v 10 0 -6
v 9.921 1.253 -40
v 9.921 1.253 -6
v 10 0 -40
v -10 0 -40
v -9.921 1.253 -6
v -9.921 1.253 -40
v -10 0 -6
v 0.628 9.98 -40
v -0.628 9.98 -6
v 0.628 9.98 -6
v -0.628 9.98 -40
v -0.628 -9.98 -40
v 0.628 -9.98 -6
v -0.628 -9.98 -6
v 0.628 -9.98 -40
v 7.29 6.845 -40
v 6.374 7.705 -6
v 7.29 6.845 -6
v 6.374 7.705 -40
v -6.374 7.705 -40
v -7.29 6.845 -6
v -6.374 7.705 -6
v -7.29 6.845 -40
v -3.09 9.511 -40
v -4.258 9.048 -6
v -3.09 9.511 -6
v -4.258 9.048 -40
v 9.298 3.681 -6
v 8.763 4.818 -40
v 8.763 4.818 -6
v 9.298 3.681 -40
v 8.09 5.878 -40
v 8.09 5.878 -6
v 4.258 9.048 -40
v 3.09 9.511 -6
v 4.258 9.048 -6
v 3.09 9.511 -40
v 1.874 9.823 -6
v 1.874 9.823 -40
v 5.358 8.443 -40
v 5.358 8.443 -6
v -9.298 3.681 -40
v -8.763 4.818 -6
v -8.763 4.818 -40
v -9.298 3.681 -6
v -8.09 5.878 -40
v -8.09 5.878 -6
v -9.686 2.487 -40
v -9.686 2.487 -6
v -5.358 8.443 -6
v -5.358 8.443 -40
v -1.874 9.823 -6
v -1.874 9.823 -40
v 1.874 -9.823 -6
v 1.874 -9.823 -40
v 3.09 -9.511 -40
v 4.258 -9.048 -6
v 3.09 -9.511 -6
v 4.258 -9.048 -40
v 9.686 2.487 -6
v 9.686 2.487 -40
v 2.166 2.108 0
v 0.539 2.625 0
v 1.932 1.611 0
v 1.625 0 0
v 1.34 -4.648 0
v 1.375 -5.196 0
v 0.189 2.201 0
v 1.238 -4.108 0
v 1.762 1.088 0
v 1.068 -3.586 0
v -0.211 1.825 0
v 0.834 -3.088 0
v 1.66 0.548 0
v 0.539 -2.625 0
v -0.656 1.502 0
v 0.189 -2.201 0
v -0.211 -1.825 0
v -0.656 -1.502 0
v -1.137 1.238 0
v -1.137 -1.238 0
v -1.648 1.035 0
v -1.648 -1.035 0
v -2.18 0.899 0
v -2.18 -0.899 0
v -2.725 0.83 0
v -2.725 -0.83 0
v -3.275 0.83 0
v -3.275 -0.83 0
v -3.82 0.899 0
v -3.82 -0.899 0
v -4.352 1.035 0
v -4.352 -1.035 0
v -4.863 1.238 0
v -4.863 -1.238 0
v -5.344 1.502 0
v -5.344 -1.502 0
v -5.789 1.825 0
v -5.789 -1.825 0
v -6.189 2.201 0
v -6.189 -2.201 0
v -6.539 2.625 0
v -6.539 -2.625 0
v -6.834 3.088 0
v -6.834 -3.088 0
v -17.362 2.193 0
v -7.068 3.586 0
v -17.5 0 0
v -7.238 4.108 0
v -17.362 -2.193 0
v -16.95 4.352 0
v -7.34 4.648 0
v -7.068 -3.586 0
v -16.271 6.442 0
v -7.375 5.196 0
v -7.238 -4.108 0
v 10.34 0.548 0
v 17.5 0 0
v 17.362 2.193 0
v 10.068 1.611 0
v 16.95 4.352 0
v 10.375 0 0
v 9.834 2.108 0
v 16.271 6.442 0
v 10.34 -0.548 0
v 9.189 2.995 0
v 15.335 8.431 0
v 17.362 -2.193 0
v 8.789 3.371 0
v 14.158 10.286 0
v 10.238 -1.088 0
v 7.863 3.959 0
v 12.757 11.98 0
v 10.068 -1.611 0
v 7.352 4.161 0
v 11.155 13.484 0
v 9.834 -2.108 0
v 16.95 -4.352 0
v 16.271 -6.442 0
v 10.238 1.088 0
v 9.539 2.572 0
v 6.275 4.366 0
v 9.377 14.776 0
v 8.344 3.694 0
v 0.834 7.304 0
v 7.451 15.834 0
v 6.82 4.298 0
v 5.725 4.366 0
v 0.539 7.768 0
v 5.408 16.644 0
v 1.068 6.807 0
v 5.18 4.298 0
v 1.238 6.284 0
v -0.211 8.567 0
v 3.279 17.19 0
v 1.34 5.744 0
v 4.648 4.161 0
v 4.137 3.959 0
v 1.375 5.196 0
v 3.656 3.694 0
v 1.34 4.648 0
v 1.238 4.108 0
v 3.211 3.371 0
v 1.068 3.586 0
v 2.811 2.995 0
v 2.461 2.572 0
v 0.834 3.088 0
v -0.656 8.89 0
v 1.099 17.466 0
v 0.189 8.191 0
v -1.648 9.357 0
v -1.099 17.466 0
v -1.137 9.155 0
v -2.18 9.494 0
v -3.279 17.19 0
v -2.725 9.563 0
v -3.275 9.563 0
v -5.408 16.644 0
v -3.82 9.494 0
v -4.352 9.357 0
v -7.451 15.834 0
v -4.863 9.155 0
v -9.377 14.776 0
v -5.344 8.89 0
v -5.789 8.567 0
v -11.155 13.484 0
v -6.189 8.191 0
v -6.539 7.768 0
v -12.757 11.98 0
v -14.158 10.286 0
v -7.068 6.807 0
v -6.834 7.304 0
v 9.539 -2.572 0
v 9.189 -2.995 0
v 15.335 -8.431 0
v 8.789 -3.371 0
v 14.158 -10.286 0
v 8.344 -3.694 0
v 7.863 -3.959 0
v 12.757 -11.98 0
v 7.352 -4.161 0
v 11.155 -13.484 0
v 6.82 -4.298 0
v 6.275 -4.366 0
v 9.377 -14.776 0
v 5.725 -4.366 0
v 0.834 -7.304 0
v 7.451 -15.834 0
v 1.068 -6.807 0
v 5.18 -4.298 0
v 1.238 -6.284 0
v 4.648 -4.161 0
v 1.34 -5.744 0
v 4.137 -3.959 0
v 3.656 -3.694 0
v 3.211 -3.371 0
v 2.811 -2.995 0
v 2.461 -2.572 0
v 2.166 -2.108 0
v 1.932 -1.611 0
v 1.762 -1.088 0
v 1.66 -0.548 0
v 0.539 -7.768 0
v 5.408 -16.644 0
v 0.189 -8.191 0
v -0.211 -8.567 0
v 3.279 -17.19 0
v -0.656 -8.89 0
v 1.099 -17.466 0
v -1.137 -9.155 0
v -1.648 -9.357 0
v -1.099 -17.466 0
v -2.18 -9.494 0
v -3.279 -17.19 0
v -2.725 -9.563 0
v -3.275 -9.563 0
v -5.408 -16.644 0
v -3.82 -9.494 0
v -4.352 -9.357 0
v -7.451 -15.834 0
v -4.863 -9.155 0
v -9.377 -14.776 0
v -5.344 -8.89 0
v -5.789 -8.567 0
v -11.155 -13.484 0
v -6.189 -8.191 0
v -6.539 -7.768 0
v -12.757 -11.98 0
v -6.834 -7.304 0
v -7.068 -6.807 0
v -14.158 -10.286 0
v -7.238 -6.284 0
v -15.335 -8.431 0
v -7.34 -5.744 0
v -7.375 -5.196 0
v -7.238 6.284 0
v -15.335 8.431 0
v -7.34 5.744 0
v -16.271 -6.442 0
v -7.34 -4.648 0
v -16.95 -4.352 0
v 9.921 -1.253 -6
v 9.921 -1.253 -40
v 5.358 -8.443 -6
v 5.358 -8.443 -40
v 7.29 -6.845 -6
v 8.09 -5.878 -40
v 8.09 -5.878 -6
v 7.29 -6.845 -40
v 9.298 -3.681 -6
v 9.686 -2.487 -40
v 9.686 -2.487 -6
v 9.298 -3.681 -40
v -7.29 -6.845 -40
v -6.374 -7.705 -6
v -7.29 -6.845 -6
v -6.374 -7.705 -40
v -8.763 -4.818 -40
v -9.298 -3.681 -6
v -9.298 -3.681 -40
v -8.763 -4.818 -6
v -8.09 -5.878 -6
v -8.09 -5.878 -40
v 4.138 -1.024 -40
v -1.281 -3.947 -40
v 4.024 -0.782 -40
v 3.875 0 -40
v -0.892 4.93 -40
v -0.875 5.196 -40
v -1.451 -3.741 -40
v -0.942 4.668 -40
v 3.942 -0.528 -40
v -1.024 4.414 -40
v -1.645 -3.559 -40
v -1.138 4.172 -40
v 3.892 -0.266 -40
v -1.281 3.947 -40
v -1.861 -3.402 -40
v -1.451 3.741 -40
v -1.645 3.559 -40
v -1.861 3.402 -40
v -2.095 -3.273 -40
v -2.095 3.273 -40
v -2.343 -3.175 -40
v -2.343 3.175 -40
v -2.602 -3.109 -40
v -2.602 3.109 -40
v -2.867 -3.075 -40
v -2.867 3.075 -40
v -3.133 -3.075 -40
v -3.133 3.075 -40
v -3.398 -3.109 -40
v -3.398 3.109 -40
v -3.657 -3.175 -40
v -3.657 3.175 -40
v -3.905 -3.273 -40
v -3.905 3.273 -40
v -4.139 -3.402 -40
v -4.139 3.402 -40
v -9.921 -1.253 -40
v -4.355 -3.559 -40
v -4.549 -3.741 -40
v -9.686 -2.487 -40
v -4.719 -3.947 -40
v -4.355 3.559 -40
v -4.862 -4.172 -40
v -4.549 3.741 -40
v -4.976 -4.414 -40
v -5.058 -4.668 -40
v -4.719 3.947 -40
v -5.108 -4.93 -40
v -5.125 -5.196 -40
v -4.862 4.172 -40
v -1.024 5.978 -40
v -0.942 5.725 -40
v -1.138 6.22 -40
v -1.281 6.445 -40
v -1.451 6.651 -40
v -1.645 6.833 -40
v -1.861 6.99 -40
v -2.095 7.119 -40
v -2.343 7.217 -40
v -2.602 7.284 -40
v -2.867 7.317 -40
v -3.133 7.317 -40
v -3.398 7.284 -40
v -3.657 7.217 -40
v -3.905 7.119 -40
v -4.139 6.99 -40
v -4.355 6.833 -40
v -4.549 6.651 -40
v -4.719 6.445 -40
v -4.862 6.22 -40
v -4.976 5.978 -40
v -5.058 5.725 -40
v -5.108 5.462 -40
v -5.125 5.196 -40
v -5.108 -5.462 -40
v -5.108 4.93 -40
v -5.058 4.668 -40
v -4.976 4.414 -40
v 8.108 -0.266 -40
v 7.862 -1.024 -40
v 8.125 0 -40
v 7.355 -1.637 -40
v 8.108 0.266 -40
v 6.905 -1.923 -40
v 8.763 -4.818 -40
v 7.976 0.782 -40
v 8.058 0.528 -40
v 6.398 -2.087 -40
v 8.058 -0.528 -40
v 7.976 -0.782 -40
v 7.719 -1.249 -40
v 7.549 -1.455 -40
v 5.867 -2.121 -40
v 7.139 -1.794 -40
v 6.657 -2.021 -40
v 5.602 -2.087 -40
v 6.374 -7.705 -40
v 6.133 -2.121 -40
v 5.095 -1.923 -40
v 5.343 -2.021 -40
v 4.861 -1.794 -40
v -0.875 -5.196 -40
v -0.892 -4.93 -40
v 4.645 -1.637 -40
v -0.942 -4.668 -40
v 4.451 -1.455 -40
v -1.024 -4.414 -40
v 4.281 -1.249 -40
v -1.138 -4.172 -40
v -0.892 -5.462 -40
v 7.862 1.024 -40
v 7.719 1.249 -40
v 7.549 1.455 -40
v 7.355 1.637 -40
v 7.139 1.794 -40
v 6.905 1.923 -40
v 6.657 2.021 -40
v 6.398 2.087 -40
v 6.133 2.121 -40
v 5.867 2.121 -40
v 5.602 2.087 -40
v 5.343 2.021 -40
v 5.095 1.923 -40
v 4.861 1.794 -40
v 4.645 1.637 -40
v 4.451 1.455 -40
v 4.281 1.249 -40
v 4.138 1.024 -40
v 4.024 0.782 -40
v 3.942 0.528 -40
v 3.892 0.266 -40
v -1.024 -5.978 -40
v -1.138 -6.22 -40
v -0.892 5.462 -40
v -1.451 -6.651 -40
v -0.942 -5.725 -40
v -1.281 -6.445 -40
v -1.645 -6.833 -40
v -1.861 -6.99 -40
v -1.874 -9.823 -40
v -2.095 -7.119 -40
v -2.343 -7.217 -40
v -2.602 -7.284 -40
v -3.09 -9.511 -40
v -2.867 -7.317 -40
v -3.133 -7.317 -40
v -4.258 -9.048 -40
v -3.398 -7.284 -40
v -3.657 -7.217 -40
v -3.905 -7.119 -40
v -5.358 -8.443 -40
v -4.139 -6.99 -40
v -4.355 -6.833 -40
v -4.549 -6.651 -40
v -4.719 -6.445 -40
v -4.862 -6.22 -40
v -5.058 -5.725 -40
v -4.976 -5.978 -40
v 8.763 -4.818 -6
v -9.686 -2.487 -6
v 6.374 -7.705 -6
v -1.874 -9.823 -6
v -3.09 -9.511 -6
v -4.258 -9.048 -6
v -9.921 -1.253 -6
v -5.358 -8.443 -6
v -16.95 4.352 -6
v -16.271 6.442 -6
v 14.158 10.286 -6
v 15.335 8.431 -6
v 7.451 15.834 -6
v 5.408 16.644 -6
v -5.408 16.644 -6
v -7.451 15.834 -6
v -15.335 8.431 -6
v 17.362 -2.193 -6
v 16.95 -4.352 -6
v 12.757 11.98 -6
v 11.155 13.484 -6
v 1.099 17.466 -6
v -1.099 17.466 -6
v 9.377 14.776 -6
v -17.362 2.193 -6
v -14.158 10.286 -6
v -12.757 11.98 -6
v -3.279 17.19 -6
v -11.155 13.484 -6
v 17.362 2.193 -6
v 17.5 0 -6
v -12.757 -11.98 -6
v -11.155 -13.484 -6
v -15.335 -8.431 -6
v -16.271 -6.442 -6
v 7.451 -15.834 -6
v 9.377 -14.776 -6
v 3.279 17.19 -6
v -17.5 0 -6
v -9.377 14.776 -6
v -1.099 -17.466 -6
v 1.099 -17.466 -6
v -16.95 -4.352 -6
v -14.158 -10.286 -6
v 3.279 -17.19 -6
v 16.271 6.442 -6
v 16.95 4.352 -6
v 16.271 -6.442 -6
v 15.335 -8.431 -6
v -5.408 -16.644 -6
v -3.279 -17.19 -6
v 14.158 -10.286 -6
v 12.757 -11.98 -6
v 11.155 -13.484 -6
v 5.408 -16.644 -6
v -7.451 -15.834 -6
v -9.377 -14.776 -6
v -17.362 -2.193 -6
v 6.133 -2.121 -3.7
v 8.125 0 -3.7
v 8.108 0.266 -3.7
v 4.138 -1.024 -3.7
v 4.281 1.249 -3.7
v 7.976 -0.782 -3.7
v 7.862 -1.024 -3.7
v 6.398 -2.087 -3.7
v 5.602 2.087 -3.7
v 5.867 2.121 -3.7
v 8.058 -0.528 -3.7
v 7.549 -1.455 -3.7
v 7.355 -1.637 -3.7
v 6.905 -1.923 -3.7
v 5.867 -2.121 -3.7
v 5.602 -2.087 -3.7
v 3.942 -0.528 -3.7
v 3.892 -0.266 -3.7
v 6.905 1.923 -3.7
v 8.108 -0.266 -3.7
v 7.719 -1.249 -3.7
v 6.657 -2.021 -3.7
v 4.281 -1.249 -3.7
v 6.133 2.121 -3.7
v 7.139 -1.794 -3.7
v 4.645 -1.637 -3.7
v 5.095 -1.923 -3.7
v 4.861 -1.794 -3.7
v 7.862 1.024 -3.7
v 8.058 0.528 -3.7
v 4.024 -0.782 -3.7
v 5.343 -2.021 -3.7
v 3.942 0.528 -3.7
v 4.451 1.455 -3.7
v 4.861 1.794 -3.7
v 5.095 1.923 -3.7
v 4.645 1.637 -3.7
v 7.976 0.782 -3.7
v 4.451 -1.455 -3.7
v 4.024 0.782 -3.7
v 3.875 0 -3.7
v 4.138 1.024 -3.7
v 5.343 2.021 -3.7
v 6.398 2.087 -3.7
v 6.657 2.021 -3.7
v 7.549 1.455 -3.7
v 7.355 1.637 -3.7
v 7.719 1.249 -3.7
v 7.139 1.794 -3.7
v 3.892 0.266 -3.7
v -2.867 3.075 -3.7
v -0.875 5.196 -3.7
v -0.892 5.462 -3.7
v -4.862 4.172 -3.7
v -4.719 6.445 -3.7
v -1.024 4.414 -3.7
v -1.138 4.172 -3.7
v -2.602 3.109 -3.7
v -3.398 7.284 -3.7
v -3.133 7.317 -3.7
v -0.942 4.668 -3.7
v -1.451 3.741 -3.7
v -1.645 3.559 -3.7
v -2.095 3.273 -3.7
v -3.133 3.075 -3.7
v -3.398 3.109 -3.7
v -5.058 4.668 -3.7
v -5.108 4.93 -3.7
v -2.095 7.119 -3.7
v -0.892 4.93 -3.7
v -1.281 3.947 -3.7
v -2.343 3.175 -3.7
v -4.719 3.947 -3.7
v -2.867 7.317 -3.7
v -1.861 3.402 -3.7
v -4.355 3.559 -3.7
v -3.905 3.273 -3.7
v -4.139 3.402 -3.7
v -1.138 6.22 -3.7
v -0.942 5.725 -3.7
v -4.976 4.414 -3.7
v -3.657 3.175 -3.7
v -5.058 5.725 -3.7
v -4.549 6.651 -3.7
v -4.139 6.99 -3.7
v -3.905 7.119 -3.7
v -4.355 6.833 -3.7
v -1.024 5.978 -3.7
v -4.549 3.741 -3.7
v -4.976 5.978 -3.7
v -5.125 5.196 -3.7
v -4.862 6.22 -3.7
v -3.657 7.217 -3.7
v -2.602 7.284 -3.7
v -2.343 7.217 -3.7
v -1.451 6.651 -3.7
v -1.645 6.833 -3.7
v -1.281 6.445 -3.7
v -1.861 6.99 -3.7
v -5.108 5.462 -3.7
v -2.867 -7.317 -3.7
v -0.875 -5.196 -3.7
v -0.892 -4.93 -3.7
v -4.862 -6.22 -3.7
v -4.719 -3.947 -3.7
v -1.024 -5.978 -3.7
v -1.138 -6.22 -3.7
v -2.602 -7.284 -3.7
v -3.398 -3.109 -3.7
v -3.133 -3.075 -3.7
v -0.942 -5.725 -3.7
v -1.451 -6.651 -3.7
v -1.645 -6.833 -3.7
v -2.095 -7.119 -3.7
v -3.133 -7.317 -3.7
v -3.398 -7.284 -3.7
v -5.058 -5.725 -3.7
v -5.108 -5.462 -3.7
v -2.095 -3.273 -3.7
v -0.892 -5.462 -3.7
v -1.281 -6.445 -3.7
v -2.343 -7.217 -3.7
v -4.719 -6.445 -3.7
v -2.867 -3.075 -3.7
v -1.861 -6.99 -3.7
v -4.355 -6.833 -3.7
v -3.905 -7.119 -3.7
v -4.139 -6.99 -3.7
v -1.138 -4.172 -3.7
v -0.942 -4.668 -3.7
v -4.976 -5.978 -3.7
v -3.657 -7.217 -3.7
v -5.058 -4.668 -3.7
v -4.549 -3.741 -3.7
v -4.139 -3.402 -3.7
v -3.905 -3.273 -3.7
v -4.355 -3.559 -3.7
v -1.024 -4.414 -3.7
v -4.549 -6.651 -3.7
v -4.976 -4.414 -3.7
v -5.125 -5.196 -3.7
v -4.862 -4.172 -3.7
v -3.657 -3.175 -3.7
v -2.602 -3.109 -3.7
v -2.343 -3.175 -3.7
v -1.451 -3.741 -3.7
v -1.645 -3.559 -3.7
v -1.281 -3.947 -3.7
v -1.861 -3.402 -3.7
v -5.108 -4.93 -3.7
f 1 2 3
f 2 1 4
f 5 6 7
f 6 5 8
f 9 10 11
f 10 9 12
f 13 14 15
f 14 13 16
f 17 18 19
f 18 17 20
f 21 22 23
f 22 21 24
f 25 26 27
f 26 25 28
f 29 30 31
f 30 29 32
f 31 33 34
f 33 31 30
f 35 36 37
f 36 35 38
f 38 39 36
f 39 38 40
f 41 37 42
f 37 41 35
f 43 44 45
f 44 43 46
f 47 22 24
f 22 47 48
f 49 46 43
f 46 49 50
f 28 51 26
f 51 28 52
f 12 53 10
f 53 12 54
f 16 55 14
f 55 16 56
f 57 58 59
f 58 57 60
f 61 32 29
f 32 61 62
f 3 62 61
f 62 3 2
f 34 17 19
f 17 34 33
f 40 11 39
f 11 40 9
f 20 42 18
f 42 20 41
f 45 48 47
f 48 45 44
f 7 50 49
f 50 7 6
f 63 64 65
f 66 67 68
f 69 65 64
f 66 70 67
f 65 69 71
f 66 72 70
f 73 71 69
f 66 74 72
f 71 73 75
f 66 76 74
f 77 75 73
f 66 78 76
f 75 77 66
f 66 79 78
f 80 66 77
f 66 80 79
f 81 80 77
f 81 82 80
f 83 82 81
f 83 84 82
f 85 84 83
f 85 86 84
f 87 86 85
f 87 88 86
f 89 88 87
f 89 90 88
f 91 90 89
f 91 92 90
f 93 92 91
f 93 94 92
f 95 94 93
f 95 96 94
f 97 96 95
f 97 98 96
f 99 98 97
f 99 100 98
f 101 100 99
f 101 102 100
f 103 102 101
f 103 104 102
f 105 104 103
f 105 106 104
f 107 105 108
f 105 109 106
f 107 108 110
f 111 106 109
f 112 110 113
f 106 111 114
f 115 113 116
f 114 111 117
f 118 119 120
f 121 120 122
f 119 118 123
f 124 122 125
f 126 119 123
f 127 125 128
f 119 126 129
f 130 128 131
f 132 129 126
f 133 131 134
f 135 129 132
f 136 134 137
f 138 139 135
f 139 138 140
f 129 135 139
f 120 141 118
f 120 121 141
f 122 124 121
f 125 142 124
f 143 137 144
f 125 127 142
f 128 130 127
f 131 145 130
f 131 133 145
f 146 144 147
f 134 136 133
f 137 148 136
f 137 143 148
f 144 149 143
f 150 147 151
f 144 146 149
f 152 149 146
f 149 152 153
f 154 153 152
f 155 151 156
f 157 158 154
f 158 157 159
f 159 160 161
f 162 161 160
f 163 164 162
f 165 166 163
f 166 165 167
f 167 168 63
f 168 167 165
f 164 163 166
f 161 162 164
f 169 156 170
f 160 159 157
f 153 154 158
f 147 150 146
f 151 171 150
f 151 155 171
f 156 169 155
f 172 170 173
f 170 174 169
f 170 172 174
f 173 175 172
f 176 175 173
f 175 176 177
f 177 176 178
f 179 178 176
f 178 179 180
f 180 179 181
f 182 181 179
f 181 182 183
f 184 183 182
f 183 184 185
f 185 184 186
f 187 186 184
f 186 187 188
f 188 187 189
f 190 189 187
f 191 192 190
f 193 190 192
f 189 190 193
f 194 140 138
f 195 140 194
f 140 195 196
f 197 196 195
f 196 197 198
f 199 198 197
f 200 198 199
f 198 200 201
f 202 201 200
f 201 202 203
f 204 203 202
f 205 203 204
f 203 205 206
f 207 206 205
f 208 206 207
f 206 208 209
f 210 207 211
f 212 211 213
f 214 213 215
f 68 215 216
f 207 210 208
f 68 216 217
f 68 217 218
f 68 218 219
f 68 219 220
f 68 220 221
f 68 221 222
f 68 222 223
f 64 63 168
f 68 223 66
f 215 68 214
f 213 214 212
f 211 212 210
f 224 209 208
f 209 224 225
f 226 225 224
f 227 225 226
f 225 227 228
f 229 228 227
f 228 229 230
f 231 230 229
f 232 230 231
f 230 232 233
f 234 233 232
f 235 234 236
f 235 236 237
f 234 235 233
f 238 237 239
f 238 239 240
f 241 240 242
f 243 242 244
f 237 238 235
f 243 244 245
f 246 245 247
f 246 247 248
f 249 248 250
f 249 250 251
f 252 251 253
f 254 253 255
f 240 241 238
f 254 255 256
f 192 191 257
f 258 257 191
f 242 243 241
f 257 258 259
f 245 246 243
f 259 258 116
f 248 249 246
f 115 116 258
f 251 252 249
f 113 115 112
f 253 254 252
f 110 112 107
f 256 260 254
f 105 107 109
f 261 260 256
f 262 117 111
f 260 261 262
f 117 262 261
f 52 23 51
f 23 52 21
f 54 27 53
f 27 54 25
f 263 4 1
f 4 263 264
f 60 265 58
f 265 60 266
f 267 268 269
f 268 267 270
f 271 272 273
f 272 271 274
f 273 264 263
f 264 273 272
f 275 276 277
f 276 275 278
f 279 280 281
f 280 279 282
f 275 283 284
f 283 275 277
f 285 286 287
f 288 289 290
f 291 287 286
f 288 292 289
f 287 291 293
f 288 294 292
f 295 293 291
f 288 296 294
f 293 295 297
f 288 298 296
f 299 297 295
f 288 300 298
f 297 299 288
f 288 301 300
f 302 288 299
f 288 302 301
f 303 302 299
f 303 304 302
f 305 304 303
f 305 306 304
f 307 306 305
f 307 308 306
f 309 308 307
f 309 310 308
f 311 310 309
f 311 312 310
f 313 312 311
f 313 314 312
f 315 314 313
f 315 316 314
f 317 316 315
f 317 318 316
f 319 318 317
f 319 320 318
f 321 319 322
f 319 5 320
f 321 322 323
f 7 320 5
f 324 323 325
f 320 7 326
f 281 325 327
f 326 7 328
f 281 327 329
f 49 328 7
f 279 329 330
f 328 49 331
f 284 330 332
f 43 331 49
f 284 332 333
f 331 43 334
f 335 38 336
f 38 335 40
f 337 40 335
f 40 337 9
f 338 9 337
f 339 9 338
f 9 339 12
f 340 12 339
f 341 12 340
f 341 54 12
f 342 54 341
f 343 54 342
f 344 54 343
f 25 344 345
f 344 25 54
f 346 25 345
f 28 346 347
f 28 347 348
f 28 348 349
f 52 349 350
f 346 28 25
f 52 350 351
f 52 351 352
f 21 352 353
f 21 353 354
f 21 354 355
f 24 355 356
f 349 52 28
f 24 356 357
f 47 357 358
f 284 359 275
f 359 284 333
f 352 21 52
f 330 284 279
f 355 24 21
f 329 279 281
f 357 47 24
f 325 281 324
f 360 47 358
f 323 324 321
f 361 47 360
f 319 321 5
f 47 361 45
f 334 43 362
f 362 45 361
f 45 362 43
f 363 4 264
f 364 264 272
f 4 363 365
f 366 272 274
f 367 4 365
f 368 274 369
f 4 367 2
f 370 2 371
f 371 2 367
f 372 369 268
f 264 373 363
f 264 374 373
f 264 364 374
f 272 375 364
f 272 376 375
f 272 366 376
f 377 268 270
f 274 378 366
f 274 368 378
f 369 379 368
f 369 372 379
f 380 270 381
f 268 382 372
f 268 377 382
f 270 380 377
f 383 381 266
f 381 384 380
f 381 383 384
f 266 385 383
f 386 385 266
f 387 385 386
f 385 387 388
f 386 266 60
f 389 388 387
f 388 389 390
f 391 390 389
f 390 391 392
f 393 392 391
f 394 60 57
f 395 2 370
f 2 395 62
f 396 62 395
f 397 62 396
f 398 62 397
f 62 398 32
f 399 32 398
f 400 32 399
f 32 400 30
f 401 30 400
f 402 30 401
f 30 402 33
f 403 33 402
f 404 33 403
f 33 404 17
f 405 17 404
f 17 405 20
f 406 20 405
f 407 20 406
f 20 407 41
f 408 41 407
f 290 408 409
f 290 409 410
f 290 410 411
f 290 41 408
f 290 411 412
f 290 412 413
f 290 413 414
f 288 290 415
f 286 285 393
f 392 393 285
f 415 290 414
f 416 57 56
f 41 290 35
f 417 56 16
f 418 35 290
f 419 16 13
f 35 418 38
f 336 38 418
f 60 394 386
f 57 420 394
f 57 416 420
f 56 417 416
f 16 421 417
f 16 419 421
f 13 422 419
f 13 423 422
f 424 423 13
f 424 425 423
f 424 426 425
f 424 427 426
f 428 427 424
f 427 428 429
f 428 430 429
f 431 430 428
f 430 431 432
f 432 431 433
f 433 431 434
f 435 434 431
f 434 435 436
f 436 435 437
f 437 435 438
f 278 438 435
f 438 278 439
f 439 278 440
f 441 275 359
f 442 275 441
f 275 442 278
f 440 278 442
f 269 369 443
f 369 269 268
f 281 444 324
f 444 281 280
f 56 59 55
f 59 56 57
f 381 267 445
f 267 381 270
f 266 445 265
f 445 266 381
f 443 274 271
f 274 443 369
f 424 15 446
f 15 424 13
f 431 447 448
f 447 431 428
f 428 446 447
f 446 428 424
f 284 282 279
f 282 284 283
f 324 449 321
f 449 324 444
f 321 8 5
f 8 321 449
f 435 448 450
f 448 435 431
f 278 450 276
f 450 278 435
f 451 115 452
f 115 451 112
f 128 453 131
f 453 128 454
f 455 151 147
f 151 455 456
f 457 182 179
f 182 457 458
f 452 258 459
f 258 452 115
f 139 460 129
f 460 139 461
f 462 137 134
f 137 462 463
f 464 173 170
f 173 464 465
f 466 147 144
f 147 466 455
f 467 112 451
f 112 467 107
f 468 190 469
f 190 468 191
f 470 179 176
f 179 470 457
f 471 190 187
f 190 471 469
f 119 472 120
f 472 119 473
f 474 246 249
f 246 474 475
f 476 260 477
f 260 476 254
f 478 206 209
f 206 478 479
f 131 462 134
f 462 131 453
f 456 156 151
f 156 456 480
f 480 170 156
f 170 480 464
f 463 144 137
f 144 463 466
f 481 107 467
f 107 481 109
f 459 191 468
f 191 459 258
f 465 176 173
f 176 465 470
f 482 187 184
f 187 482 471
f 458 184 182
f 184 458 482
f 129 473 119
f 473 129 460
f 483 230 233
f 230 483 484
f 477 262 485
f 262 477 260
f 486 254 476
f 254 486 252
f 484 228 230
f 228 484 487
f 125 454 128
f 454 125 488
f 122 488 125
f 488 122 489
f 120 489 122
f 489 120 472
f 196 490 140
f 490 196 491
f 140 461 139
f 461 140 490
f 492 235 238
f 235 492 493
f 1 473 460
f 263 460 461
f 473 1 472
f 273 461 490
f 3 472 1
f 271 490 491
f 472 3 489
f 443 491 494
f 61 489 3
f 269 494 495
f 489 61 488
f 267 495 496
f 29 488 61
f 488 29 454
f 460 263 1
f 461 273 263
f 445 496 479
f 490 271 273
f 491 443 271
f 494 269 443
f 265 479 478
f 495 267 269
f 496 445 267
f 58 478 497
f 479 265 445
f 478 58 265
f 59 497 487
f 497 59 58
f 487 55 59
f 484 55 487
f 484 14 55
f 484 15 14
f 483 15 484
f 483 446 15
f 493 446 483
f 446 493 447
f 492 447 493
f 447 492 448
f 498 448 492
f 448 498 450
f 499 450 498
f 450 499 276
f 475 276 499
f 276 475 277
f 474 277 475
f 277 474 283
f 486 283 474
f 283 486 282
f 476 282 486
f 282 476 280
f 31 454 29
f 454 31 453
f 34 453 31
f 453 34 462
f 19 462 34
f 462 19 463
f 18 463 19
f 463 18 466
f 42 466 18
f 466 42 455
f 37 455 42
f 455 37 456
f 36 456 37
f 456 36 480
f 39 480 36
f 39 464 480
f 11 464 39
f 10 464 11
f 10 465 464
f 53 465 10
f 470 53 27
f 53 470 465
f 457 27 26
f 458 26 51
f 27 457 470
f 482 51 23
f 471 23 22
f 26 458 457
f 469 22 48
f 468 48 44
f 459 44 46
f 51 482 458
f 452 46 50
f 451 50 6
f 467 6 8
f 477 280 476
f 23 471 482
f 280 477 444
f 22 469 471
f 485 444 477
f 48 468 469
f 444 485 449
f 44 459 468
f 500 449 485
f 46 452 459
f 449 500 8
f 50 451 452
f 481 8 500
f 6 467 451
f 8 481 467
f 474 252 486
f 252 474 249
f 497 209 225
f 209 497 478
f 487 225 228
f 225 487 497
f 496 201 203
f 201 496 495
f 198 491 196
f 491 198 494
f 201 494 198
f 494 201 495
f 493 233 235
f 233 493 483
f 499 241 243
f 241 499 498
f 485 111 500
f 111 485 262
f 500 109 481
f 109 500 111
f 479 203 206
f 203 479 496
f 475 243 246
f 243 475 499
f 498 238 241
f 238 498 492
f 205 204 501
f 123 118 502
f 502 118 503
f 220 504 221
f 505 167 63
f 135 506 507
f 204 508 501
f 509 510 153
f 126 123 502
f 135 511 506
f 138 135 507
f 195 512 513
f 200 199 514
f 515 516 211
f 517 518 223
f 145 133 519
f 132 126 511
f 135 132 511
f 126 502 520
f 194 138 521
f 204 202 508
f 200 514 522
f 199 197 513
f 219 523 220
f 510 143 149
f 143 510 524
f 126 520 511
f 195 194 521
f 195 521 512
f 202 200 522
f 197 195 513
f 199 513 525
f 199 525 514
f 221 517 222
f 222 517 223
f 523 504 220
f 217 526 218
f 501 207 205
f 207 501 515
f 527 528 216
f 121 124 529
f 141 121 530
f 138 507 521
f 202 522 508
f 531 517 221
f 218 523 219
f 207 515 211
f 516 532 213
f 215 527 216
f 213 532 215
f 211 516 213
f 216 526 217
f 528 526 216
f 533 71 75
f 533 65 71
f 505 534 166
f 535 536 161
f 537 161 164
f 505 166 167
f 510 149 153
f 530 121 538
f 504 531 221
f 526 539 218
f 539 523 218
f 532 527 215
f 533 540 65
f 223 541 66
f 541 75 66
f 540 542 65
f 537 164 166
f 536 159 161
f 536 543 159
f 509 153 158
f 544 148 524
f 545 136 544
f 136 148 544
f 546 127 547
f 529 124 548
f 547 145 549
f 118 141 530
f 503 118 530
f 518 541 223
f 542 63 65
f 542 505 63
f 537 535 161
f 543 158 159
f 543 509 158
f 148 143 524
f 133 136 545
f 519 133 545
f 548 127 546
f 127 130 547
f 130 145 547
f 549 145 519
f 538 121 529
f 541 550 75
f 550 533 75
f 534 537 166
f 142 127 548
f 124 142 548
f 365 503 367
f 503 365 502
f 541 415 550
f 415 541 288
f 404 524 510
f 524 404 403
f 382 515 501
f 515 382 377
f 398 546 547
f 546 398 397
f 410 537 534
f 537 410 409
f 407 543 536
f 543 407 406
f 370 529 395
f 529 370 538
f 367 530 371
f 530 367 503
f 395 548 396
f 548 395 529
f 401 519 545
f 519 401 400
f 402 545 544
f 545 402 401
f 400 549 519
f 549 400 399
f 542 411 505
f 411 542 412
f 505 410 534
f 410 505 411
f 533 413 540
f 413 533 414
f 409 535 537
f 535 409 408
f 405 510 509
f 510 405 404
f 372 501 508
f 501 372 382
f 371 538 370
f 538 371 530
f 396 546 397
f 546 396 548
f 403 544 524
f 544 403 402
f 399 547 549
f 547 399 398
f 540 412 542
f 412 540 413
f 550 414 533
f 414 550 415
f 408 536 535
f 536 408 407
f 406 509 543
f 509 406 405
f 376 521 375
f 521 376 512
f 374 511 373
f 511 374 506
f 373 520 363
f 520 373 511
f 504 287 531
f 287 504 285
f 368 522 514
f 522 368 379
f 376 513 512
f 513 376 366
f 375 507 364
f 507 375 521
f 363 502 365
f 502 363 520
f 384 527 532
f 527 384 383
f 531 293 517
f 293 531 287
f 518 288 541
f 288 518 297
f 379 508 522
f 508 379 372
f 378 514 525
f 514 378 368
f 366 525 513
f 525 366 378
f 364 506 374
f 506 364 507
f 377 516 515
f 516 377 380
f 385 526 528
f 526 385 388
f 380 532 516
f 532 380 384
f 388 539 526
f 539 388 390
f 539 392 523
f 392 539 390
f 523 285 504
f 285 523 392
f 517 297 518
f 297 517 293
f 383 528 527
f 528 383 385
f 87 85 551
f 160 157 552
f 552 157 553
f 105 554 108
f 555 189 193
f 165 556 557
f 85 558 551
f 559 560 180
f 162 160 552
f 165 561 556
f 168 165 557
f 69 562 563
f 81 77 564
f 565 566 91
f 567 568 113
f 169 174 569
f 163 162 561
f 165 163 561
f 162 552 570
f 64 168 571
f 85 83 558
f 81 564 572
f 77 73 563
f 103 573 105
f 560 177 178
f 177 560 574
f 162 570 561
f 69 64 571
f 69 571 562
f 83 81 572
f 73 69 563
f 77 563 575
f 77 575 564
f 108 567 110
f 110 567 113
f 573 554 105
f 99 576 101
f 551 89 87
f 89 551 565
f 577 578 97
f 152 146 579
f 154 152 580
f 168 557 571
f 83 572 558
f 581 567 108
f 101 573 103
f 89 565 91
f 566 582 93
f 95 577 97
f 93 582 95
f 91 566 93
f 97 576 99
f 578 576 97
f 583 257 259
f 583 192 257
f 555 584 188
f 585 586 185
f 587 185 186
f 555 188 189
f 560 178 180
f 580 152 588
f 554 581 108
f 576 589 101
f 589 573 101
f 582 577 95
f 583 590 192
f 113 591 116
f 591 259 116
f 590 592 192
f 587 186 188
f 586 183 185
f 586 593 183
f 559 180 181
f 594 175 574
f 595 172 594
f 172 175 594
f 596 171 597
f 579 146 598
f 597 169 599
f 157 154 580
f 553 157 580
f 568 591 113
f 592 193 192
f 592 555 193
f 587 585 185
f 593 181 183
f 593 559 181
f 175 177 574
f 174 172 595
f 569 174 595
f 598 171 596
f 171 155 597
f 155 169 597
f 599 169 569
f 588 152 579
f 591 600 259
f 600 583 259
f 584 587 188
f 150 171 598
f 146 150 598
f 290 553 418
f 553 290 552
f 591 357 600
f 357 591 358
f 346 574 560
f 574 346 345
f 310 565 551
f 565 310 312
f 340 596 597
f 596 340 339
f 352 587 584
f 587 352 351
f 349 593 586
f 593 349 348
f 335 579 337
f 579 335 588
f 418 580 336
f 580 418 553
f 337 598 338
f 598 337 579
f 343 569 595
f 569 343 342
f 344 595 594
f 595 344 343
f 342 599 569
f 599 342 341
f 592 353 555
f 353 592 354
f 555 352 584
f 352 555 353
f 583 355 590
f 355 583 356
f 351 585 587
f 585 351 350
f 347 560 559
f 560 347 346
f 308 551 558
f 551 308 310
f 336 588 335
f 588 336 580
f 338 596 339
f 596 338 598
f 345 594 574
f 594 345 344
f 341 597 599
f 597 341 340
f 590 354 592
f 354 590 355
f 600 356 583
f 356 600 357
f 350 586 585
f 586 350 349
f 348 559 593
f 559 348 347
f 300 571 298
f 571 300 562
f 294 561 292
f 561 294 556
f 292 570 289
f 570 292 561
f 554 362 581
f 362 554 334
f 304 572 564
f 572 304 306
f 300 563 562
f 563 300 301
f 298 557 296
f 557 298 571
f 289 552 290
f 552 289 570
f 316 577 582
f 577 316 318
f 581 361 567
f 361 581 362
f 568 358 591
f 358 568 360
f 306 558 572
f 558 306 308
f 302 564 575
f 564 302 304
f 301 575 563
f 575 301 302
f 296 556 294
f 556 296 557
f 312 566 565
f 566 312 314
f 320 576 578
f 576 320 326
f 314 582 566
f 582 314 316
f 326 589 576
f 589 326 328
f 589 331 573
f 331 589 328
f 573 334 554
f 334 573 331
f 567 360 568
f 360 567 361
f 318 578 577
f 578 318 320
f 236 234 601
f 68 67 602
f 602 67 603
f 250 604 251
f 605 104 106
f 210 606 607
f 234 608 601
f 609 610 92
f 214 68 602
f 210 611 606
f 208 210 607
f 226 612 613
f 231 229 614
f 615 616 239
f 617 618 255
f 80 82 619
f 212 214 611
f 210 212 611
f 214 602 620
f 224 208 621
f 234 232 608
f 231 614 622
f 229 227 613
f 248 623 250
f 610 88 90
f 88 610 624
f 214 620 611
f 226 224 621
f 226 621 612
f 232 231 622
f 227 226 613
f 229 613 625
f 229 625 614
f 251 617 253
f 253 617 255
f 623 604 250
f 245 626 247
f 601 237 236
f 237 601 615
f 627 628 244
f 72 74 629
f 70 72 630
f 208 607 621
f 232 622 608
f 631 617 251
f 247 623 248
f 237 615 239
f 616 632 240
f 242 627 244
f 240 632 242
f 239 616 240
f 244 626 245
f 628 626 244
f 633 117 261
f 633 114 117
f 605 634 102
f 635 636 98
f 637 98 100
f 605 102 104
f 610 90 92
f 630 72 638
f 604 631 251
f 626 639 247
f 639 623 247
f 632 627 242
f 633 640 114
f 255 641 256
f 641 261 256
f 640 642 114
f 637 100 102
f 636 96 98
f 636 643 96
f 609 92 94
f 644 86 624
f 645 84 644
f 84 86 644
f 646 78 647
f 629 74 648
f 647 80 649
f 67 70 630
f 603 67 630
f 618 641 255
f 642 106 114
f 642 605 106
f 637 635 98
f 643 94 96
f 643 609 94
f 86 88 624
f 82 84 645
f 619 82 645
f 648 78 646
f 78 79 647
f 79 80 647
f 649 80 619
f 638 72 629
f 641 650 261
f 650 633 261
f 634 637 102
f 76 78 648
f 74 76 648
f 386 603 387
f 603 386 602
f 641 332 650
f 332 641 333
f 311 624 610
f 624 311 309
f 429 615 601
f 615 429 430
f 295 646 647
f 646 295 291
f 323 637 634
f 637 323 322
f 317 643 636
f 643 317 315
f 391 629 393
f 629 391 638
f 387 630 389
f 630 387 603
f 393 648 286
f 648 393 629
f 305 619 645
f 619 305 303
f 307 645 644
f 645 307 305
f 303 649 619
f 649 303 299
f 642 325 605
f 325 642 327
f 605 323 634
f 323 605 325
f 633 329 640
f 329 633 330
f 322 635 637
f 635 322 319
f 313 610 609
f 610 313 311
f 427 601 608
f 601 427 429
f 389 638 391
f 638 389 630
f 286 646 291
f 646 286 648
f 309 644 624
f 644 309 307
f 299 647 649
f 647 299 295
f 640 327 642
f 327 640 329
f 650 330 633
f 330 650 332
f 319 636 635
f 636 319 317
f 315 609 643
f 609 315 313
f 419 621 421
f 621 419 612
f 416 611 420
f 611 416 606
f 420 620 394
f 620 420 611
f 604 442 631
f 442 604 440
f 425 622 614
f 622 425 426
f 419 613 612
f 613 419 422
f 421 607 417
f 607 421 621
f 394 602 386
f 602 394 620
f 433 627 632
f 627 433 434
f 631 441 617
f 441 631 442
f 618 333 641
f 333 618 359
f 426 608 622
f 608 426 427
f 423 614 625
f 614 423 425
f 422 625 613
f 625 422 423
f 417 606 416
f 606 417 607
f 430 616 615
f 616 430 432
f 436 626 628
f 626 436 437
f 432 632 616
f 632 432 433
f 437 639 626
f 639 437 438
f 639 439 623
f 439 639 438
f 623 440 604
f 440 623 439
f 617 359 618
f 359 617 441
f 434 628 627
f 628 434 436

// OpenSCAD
$fn = 50;


difference() {
	union() {
		translate(v = [0, 0, -40.0000000000]) {
			cylinder(h = 40, r = 10.0000000000);
		}
		translate(v = [0, 0, -6.0000000000]) {
			cylinder(h = 6, r = 17.5000000000);
		}
	}
	union() {
		translate(v = [6.0000000000, 0.0000000000, 0]) {
			rotate(a = [0, 0, 0]) {
				difference() {
					union() {
						#translate(v = [0, 0, -40.0000000000]) {
							cylinder(h = 40, r = 2.0000000000);
						}
						#translate(v = [0, 0, -3.7000000000]) {
							cylinder(h = 3.7000000000, r = 10.0000000000, r1 = 2.1250000000, r2 = 4.3750000000);
						}
						#translate(v = [0, 0, -40.0000000000]) {
							cylinder(h = 40, r = 2.1250000000);
						}
						#translate(v = [0, 0, -40.0000000000]) {
							cylinder(h = 40, r = 2.0000000000);
						}
					}
					union();
				}
			}
		}
		translate(v = [-3.0000000000, 5.1961524227, 0]) {
			rotate(a = [0, 0, 0]) {
				difference() {
					union() {
						#translate(v = [0, 0, -40.0000000000]) {
							cylinder(h = 40, r = 2.0000000000);
						}
						#translate(v = [0, 0, -3.7000000000]) {
							cylinder(h = 3.7000000000, r = 10.0000000000, r1 = 2.1250000000, r2 = 4.3750000000);
						}
						#translate(v = [0, 0, -40.0000000000]) {
							cylinder(h = 40, r = 2.1250000000);
						}
						#translate(v = [0, 0, -40.0000000000]) {
							cylinder(h = 40, r = 2.0000000000);
						}
					}
					union();
				}
			}
		}
		translate(v = [-3.0000000000, -5.1961524227, 0]) {
			rotate(a = [0, 0, 0]) {
				difference() {
					union() {
						#translate(v = [0, 0, -40.0000000000]) {
							cylinder(h = 40, r = 2.0000000000);
						}
						#translate(v = [0, 0, -3.7000000000]) {
							cylinder(h = 3.7000000000, r = 10.0000000000, r1 = 2.1250000000, r2 = 4.3750000000);
						}
						#translate(v = [0, 0, -40.0000000000]) {
							cylinder(h = 40, r = 2.1250000000);
						}
						#translate(v = [0, 0, -40.0000000000]) {
							cylinder(h = 40, r = 2.0000000000);
						}
					}
					union();
				}
			}
		}
	}
}
